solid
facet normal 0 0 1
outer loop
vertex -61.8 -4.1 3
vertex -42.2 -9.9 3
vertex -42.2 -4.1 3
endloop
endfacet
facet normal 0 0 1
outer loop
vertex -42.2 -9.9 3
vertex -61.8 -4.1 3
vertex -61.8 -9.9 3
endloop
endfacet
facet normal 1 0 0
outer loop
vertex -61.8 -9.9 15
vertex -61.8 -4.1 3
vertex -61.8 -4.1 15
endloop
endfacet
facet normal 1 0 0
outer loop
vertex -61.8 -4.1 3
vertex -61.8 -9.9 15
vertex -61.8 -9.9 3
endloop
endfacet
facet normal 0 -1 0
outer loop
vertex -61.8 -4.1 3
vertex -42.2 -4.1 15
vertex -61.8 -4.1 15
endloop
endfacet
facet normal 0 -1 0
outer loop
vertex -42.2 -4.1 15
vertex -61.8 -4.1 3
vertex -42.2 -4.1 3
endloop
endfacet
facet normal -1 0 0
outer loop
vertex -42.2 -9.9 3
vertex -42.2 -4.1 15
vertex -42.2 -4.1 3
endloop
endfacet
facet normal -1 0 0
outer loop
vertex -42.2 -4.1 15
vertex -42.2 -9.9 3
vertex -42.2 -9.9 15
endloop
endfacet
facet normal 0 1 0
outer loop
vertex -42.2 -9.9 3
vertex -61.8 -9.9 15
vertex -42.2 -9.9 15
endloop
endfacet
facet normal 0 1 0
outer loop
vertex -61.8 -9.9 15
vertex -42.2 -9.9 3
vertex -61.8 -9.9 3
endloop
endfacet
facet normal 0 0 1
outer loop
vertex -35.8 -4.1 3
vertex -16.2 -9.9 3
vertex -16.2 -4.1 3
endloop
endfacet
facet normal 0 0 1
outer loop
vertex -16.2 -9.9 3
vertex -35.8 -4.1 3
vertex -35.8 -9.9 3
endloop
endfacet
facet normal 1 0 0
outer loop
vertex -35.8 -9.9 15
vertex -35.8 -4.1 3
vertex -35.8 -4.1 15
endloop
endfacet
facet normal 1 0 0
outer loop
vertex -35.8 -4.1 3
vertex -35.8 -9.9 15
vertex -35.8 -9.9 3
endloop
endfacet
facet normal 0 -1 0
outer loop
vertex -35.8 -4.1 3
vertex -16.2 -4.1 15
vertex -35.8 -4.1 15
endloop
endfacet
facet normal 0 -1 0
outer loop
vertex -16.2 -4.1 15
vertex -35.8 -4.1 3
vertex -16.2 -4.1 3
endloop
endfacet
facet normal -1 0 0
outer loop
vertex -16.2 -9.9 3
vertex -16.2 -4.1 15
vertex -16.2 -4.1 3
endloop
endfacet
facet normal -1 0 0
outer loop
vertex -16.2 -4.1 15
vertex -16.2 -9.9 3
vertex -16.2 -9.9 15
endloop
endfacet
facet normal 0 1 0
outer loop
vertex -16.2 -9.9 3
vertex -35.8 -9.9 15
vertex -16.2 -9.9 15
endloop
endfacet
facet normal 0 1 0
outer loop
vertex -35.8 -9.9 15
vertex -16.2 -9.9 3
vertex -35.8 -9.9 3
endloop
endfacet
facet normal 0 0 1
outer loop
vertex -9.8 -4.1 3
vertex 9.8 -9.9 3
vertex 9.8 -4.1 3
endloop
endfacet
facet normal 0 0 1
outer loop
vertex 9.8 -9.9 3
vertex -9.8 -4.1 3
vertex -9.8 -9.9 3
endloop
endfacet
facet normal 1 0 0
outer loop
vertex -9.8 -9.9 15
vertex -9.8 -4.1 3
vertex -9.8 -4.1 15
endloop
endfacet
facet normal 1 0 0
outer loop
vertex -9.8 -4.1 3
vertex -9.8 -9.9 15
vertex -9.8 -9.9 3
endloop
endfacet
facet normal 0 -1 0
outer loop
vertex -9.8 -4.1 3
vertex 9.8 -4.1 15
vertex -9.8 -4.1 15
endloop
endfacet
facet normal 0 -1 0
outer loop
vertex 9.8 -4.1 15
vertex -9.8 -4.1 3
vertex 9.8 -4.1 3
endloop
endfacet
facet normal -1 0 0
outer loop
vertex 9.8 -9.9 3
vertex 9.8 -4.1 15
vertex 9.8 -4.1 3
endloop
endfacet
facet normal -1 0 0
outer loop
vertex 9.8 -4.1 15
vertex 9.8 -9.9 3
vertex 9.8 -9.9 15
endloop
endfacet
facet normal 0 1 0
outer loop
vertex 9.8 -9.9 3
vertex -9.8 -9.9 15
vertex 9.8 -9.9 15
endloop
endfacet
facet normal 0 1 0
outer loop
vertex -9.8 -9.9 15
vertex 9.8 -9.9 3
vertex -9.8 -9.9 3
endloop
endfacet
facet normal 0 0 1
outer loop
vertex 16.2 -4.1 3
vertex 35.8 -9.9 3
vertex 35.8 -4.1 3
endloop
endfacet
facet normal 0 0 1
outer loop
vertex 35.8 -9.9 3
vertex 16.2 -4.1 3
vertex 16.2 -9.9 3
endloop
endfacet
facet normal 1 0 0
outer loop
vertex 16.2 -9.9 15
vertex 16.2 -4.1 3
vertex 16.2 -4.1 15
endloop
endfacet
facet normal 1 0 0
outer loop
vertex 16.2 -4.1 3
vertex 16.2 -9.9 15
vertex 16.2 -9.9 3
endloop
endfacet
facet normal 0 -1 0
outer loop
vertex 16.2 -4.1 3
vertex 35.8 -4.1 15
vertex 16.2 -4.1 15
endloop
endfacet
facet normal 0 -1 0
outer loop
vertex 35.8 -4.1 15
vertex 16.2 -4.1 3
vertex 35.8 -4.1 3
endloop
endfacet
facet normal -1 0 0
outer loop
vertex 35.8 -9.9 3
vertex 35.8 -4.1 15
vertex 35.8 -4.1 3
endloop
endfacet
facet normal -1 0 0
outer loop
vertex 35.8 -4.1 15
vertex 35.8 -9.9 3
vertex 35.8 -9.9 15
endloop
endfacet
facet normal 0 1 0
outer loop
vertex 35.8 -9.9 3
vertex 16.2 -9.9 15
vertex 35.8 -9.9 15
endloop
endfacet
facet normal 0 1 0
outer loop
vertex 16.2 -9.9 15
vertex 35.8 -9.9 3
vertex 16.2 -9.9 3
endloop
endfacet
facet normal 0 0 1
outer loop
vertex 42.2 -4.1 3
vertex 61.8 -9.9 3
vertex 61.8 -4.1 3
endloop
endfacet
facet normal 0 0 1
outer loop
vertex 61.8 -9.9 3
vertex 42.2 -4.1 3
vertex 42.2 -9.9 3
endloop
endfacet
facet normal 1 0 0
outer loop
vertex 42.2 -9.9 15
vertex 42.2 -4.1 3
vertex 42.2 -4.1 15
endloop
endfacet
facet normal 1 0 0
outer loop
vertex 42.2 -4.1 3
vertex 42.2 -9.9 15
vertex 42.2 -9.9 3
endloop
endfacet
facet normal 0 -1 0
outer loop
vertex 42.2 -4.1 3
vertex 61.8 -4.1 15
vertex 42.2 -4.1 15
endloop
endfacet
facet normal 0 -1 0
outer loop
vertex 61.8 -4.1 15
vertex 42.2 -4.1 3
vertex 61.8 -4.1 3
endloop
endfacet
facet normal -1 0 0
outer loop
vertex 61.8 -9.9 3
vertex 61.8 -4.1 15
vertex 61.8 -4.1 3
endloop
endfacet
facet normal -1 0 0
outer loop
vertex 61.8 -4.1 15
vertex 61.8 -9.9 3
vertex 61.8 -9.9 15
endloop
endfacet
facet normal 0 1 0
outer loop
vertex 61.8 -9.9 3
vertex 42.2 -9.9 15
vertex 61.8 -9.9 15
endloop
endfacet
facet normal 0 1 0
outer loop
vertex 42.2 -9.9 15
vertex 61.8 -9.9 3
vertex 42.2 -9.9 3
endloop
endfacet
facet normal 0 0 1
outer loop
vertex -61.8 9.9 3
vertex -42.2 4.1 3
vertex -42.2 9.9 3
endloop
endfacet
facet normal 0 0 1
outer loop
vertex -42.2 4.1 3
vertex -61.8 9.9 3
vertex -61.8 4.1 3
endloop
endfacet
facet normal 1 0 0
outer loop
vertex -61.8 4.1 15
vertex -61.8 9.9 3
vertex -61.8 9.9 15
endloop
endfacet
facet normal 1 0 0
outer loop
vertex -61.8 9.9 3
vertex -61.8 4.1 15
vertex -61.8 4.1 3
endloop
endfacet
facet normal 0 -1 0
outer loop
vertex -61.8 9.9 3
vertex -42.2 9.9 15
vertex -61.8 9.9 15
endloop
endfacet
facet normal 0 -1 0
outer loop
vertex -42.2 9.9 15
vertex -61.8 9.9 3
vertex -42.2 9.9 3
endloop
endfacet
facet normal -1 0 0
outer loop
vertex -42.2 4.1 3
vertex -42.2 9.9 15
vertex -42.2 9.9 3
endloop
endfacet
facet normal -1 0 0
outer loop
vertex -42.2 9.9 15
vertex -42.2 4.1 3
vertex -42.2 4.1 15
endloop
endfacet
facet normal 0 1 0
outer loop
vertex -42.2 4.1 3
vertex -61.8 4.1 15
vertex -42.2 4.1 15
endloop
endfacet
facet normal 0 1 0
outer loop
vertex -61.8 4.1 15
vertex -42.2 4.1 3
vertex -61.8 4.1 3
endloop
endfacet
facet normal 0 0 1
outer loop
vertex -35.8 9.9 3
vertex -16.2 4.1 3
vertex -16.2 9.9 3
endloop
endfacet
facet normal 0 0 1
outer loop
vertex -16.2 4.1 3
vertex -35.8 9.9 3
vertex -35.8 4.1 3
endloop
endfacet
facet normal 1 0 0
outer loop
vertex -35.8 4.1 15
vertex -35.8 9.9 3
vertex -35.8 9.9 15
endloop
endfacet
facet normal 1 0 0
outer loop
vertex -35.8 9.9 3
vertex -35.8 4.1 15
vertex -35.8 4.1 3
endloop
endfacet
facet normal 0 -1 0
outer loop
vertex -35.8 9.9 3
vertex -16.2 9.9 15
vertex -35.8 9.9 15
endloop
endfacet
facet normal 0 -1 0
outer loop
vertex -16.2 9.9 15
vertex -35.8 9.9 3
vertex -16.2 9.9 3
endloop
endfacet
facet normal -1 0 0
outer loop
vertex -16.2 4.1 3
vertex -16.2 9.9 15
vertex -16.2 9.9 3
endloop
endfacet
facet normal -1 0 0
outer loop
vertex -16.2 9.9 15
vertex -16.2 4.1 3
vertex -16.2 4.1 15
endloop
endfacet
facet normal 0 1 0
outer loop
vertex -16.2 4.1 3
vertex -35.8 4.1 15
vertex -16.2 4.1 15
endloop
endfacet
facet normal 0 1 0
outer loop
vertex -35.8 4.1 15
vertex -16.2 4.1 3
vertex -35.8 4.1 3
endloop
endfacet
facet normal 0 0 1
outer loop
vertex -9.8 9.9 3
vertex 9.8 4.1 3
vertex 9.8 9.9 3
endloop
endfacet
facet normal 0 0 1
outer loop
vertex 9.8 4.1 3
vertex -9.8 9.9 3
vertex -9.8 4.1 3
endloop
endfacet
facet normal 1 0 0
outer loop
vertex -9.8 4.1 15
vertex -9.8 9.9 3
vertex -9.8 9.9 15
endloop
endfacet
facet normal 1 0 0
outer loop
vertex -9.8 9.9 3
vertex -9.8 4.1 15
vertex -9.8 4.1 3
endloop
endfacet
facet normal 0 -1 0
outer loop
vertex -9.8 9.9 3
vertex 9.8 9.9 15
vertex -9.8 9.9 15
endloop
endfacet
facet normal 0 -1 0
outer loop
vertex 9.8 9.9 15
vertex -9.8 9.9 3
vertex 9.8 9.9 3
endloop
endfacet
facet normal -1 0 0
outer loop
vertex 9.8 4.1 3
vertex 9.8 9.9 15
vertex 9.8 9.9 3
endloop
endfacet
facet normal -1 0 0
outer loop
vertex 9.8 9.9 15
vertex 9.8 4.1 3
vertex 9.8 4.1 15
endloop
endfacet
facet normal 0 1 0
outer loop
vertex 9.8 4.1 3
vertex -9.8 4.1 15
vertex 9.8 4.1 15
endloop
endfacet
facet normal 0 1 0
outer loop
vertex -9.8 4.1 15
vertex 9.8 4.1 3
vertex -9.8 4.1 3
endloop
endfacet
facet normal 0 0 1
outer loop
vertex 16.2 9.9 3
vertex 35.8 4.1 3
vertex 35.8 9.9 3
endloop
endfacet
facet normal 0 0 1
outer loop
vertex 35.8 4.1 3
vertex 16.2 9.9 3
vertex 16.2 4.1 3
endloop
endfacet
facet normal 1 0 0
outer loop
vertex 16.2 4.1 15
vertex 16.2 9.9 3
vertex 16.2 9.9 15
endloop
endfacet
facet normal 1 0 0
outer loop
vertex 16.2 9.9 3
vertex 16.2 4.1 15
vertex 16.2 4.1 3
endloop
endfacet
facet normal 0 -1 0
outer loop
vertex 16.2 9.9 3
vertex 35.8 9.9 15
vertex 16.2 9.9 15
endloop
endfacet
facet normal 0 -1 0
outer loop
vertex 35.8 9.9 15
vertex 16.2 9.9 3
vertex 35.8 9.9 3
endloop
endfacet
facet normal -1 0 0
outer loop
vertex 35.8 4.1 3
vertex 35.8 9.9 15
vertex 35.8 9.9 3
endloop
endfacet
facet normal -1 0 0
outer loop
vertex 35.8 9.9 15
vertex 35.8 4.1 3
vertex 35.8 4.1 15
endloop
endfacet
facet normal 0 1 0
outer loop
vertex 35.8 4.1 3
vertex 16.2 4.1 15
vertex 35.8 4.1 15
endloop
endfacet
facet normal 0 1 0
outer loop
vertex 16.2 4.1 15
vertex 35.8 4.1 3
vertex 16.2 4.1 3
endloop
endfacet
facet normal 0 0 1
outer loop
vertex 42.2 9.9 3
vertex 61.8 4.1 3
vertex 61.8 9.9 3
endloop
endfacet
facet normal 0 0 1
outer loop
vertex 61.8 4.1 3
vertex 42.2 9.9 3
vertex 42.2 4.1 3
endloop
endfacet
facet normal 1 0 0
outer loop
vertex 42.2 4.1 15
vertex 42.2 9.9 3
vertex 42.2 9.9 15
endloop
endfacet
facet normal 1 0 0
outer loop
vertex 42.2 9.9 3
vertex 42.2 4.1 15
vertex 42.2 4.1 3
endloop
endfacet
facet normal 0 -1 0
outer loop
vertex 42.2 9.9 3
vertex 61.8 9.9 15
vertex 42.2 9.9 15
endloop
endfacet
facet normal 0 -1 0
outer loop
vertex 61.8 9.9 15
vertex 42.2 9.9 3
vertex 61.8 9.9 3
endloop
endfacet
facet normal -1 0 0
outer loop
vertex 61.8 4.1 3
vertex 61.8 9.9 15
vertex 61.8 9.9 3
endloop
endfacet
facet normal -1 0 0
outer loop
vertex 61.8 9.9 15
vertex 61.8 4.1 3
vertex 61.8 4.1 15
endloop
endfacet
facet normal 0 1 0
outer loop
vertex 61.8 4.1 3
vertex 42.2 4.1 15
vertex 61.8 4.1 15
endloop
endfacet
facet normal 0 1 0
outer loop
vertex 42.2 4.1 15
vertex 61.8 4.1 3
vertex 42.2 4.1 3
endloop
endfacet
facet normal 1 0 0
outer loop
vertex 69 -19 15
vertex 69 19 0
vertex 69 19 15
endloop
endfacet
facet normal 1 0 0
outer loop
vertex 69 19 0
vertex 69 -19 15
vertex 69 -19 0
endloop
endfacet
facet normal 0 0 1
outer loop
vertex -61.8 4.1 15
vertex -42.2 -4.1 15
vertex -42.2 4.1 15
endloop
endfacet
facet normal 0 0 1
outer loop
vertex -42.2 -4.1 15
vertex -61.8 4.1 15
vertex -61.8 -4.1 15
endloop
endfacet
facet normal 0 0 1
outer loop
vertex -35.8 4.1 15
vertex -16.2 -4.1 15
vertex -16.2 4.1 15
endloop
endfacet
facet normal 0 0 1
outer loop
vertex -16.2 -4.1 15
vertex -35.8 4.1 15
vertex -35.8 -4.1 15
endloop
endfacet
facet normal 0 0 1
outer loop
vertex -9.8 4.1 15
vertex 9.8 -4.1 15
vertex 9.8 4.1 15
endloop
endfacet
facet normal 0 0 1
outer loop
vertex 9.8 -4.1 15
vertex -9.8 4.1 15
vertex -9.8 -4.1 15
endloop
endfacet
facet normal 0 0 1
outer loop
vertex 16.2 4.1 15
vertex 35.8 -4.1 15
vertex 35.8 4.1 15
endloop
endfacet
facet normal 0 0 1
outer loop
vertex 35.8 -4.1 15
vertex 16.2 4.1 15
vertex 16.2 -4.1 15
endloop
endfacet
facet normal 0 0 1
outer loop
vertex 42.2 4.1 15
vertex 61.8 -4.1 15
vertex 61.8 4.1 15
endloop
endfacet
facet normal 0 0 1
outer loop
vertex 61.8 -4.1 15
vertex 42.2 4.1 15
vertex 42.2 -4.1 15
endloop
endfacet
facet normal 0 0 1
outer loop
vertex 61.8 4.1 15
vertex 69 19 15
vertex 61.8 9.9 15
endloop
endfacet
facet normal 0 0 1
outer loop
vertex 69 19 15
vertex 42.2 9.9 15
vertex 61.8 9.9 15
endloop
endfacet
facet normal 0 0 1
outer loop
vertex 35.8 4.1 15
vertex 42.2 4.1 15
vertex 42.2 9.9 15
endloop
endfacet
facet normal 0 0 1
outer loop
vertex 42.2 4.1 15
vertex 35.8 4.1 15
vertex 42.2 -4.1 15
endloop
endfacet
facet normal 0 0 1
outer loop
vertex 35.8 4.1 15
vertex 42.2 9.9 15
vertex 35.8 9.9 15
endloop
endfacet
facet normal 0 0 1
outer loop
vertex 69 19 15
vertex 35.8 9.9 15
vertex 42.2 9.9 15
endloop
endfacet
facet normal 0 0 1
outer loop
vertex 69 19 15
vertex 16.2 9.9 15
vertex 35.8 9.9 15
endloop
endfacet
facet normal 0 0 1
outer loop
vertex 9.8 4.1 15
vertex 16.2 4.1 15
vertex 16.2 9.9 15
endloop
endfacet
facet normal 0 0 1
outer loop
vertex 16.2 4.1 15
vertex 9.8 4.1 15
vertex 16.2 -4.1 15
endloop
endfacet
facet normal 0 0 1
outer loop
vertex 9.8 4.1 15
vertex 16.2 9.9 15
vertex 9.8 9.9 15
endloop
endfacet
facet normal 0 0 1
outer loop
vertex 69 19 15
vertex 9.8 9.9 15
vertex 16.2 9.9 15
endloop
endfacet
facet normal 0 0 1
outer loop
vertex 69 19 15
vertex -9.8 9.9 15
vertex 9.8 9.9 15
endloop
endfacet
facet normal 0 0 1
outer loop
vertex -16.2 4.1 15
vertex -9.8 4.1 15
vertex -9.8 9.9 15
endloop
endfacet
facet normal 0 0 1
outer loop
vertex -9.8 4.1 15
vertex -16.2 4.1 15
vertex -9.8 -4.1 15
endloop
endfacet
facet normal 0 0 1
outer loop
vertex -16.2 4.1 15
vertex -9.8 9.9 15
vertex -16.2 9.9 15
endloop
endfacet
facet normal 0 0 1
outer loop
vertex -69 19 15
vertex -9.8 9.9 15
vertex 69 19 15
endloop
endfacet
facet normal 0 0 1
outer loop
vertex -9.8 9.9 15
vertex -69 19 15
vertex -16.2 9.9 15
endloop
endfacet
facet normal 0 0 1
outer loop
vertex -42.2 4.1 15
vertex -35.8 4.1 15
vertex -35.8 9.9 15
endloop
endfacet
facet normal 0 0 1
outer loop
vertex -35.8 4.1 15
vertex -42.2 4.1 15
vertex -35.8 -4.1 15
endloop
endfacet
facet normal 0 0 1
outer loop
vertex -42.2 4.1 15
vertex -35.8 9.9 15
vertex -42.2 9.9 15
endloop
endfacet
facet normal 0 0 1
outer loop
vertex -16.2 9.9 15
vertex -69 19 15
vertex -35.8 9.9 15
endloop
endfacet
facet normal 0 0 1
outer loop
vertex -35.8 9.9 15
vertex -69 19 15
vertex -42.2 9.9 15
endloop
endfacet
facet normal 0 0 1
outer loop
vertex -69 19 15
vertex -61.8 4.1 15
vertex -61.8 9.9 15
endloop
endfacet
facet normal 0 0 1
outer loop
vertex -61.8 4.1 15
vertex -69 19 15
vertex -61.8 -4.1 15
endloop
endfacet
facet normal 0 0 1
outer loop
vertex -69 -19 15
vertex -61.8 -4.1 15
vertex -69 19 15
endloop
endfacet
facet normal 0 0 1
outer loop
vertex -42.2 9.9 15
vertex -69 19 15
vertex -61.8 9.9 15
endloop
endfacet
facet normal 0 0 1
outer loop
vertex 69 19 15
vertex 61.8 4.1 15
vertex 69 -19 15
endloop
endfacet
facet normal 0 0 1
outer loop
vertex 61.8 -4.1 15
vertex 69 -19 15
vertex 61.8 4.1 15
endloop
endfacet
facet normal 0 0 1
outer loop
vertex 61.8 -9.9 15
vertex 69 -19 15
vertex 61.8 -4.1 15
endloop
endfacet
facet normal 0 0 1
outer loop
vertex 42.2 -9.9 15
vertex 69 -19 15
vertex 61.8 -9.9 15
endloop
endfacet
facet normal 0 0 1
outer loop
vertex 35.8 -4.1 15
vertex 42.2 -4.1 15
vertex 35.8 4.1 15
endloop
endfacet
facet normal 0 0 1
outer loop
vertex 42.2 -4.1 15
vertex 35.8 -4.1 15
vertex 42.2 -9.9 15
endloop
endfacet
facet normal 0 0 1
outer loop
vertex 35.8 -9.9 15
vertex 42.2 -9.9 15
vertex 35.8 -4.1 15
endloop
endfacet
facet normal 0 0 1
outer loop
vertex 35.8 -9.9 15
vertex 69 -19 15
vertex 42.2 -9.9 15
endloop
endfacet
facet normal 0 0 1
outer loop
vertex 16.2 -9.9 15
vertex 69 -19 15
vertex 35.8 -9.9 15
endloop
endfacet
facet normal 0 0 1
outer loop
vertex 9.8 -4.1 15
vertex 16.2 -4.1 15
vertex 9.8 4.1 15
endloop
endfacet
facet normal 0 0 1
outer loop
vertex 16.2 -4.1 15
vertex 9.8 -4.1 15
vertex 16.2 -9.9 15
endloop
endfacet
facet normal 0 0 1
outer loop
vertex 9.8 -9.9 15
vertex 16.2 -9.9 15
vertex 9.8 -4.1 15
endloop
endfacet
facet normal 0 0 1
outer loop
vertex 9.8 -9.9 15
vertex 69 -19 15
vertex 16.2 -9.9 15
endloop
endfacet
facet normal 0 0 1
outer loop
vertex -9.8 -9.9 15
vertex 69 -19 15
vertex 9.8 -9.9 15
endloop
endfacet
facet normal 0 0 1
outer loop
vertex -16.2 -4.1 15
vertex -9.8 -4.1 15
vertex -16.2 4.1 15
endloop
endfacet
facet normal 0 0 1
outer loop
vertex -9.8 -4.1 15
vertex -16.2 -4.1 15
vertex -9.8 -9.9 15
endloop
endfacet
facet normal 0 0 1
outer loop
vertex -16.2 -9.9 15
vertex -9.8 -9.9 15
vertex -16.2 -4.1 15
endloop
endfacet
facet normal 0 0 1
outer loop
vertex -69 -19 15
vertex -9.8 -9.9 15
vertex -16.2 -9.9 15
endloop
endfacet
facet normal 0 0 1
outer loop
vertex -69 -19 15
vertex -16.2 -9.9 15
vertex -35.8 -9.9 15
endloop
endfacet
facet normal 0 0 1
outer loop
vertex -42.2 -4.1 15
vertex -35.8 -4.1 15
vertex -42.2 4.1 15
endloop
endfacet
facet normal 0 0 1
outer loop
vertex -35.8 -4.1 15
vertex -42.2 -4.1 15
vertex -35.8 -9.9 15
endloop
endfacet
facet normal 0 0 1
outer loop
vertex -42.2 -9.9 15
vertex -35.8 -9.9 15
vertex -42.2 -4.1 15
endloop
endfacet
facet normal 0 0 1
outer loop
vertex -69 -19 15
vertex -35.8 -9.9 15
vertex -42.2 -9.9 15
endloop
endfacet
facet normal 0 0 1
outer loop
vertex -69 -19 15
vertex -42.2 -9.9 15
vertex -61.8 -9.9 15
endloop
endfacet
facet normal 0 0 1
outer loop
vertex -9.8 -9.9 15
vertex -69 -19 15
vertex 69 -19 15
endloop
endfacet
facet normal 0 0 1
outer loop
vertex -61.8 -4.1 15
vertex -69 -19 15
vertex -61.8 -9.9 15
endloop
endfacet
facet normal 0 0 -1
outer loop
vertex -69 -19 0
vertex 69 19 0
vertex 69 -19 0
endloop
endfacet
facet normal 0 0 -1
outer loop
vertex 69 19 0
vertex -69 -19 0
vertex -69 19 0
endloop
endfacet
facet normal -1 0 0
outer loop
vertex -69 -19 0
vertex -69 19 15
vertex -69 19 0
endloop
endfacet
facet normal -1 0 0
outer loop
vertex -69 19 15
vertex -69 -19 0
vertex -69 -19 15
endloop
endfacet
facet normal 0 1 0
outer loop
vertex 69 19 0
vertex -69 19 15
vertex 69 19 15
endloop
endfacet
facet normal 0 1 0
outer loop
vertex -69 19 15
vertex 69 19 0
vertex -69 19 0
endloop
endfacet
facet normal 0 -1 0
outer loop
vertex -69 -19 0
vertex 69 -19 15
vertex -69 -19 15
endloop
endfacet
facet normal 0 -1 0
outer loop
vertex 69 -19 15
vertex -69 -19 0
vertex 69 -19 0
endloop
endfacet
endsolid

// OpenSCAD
// Blade-fuse organizer block for the TOOLS pocket / field spares bag.
// Standard ATO/ATC fuses stand blade-down in a labeled grid; ~6mm of fuse
// stands proud to grab. PETG, 3 perimeters, 20% infill.

$fn = 24;

rows       = 2;
cols       = 5;
fuse       = [19.6, 5.8];   // ATO body + clearance; use [11.6, 4.4] for Mini fuses
slot_depth = 12;
pitch_x    = 26;
pitch_y    = 14;

block = [cols*pitch_x + 8, rows*pitch_y + 10, slot_depth + 3];

difference() {
    translate([0, 0, block[2]/2]) cube(block, center=true);
    for (r = [0:rows-1], c = [0:cols-1])
        translate([(c - (cols-1)/2) * pitch_x,
                   (r - (rows-1)/2) * pitch_y,
                   block[2] - slot_depth])
            linear_extrude(slot_depth + 1)
                square(fuse, center=true);
}
